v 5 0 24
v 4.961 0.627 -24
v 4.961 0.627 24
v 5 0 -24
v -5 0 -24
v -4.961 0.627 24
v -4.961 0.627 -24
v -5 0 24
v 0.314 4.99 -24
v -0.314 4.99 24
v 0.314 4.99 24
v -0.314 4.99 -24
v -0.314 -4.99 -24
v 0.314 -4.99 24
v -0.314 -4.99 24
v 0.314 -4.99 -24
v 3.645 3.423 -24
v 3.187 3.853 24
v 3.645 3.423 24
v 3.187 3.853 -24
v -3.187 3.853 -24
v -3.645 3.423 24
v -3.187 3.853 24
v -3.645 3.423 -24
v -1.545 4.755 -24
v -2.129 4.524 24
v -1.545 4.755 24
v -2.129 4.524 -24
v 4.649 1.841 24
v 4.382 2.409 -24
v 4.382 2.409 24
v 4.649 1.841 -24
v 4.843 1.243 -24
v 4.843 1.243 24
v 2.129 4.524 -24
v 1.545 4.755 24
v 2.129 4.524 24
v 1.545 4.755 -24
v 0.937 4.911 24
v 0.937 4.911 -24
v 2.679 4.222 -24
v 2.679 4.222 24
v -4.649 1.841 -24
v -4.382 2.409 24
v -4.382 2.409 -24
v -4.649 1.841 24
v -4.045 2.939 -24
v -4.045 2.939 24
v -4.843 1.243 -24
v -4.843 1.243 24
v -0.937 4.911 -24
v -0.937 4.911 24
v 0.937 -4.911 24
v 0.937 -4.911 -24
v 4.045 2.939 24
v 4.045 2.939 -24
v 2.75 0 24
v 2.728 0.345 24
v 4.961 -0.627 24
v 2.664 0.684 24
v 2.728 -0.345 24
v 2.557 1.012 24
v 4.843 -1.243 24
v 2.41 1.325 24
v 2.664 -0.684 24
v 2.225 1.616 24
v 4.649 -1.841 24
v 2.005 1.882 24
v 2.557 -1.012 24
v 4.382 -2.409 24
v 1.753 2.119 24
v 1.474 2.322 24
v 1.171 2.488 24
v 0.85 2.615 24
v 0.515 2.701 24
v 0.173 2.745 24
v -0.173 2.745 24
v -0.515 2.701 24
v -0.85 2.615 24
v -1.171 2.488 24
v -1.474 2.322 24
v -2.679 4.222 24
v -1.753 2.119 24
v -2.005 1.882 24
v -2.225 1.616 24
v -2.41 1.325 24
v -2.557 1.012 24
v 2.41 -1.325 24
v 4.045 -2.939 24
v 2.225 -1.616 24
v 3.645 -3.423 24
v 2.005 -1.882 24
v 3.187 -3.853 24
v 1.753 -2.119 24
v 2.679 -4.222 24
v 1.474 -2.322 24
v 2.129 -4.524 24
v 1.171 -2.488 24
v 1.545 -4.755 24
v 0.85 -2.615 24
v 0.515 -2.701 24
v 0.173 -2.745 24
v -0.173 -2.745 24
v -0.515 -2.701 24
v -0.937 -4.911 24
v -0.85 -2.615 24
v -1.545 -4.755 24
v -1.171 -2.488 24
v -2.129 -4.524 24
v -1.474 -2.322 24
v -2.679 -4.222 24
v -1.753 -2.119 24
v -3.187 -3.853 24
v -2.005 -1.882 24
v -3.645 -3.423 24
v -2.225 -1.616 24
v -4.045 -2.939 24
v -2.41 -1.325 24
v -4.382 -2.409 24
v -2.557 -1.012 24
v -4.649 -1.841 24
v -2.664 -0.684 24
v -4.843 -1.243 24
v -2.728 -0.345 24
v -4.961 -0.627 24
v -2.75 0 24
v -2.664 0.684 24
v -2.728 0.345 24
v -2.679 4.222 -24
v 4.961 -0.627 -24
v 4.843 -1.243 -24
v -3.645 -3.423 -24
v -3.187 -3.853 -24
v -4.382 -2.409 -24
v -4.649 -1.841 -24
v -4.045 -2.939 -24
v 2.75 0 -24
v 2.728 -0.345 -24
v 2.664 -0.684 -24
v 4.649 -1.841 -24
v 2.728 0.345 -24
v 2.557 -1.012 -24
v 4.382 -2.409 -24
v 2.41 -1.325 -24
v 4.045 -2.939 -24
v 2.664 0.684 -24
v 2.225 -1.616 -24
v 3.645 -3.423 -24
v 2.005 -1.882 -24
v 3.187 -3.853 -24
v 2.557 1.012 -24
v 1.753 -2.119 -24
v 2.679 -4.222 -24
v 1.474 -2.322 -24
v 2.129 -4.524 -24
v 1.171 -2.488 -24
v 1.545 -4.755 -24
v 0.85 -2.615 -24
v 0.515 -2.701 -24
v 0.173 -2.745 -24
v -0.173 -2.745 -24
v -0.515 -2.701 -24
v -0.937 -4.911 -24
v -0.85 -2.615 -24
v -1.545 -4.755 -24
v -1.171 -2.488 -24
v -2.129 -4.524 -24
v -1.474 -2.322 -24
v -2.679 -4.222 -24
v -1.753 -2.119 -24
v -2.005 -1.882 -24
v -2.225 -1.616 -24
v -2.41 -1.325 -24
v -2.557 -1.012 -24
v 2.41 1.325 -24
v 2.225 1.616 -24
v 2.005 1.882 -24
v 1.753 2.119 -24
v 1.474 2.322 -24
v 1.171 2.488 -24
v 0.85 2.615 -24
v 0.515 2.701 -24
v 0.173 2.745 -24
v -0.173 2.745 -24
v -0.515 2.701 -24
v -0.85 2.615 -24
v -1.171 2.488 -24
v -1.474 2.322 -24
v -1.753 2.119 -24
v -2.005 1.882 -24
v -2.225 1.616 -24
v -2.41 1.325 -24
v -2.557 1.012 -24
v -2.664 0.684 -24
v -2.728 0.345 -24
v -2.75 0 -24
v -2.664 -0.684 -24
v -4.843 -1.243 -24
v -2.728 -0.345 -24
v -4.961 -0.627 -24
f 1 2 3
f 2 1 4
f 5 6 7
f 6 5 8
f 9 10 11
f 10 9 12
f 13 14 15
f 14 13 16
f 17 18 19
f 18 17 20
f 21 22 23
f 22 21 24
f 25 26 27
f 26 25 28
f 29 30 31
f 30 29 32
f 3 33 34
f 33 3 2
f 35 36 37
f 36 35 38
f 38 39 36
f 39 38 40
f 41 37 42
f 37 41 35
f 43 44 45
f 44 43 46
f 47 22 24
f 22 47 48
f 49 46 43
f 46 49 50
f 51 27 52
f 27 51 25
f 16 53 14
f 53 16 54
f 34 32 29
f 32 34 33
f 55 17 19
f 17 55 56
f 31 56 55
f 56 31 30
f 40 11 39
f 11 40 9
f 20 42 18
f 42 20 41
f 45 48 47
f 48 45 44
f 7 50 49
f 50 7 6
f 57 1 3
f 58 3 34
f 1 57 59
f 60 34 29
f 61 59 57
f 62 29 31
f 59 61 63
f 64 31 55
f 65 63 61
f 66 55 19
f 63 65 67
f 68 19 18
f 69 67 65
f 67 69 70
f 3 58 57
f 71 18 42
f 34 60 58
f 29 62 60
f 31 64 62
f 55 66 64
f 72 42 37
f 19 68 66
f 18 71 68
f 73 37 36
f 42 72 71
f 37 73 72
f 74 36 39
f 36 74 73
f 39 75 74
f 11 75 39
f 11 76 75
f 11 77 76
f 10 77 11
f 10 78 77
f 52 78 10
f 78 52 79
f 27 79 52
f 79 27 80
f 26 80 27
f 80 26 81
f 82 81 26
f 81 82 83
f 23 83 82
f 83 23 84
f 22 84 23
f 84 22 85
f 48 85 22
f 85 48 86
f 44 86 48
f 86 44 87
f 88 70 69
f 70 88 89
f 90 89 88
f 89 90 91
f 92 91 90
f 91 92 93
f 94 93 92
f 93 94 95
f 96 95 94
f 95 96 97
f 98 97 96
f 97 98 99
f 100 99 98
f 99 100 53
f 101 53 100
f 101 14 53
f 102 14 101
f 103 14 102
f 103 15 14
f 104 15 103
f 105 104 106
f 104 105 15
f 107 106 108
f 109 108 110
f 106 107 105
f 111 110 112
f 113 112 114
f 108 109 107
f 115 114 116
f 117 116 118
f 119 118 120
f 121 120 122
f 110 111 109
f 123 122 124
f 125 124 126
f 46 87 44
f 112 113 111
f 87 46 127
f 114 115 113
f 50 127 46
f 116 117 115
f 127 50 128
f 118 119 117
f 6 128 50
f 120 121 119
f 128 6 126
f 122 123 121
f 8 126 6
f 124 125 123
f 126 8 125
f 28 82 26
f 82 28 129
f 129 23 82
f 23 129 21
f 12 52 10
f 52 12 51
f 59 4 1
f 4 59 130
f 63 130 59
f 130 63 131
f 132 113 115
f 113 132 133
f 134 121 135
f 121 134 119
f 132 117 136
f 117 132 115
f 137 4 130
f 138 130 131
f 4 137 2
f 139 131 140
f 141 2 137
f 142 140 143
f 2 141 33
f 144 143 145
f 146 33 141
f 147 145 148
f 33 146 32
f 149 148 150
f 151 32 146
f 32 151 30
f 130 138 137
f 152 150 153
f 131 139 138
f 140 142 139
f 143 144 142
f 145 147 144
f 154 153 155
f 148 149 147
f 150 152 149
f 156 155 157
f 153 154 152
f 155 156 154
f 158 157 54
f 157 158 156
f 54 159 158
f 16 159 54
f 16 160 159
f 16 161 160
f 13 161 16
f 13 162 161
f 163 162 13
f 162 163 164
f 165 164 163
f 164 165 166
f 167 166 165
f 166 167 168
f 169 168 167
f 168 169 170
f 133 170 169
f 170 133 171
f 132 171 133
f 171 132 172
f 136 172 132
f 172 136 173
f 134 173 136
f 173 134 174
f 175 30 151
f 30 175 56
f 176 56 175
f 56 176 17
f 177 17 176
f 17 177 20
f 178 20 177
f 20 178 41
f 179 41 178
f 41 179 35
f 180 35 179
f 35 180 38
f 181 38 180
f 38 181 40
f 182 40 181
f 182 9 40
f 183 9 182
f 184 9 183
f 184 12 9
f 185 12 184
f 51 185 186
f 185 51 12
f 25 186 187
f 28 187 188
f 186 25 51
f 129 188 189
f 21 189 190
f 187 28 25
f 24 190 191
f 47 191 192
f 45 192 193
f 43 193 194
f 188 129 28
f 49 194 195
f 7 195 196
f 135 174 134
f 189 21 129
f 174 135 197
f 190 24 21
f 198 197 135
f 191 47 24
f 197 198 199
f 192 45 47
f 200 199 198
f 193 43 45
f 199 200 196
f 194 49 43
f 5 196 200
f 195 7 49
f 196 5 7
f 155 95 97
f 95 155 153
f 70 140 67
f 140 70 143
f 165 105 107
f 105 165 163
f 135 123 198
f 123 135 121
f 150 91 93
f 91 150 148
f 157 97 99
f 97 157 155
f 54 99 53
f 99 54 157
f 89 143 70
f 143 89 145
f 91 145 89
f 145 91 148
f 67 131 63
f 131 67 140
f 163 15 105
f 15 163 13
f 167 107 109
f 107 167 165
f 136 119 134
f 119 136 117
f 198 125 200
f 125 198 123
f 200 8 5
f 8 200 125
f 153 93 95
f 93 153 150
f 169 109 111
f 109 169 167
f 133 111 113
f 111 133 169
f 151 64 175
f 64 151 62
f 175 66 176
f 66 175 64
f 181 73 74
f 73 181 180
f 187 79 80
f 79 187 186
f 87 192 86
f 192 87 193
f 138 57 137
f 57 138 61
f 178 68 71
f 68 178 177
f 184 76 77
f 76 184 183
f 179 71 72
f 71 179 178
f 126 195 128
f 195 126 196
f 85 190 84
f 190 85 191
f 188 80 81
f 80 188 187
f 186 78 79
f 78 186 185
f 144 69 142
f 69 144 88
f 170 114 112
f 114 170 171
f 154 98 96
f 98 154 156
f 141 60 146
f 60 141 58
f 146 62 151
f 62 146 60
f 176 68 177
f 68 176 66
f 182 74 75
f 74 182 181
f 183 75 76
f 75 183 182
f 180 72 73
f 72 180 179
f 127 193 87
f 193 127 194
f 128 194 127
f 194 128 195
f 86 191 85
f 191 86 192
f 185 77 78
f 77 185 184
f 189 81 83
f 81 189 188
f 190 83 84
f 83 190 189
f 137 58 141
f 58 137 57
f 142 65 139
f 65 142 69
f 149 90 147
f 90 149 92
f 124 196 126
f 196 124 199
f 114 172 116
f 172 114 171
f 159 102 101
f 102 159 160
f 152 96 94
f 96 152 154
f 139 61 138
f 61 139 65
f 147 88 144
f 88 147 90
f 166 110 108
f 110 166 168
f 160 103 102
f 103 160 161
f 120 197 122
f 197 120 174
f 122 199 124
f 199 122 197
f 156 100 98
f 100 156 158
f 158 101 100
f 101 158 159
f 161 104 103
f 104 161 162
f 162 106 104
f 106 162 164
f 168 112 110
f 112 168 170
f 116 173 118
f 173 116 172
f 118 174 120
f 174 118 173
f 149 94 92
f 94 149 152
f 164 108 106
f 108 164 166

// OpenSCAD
$fn = 50;


difference() {
	union() {
		translate(v = [0, 0, -24.0000000000]) {
			cylinder(h = 48, r = 5.0000000000);
		}
	}
	union() {
		translate(v = [0, 0, -100.0000000000]) {
			cylinder(h = 200, r = 2.7500000000);
		}
	}
}
